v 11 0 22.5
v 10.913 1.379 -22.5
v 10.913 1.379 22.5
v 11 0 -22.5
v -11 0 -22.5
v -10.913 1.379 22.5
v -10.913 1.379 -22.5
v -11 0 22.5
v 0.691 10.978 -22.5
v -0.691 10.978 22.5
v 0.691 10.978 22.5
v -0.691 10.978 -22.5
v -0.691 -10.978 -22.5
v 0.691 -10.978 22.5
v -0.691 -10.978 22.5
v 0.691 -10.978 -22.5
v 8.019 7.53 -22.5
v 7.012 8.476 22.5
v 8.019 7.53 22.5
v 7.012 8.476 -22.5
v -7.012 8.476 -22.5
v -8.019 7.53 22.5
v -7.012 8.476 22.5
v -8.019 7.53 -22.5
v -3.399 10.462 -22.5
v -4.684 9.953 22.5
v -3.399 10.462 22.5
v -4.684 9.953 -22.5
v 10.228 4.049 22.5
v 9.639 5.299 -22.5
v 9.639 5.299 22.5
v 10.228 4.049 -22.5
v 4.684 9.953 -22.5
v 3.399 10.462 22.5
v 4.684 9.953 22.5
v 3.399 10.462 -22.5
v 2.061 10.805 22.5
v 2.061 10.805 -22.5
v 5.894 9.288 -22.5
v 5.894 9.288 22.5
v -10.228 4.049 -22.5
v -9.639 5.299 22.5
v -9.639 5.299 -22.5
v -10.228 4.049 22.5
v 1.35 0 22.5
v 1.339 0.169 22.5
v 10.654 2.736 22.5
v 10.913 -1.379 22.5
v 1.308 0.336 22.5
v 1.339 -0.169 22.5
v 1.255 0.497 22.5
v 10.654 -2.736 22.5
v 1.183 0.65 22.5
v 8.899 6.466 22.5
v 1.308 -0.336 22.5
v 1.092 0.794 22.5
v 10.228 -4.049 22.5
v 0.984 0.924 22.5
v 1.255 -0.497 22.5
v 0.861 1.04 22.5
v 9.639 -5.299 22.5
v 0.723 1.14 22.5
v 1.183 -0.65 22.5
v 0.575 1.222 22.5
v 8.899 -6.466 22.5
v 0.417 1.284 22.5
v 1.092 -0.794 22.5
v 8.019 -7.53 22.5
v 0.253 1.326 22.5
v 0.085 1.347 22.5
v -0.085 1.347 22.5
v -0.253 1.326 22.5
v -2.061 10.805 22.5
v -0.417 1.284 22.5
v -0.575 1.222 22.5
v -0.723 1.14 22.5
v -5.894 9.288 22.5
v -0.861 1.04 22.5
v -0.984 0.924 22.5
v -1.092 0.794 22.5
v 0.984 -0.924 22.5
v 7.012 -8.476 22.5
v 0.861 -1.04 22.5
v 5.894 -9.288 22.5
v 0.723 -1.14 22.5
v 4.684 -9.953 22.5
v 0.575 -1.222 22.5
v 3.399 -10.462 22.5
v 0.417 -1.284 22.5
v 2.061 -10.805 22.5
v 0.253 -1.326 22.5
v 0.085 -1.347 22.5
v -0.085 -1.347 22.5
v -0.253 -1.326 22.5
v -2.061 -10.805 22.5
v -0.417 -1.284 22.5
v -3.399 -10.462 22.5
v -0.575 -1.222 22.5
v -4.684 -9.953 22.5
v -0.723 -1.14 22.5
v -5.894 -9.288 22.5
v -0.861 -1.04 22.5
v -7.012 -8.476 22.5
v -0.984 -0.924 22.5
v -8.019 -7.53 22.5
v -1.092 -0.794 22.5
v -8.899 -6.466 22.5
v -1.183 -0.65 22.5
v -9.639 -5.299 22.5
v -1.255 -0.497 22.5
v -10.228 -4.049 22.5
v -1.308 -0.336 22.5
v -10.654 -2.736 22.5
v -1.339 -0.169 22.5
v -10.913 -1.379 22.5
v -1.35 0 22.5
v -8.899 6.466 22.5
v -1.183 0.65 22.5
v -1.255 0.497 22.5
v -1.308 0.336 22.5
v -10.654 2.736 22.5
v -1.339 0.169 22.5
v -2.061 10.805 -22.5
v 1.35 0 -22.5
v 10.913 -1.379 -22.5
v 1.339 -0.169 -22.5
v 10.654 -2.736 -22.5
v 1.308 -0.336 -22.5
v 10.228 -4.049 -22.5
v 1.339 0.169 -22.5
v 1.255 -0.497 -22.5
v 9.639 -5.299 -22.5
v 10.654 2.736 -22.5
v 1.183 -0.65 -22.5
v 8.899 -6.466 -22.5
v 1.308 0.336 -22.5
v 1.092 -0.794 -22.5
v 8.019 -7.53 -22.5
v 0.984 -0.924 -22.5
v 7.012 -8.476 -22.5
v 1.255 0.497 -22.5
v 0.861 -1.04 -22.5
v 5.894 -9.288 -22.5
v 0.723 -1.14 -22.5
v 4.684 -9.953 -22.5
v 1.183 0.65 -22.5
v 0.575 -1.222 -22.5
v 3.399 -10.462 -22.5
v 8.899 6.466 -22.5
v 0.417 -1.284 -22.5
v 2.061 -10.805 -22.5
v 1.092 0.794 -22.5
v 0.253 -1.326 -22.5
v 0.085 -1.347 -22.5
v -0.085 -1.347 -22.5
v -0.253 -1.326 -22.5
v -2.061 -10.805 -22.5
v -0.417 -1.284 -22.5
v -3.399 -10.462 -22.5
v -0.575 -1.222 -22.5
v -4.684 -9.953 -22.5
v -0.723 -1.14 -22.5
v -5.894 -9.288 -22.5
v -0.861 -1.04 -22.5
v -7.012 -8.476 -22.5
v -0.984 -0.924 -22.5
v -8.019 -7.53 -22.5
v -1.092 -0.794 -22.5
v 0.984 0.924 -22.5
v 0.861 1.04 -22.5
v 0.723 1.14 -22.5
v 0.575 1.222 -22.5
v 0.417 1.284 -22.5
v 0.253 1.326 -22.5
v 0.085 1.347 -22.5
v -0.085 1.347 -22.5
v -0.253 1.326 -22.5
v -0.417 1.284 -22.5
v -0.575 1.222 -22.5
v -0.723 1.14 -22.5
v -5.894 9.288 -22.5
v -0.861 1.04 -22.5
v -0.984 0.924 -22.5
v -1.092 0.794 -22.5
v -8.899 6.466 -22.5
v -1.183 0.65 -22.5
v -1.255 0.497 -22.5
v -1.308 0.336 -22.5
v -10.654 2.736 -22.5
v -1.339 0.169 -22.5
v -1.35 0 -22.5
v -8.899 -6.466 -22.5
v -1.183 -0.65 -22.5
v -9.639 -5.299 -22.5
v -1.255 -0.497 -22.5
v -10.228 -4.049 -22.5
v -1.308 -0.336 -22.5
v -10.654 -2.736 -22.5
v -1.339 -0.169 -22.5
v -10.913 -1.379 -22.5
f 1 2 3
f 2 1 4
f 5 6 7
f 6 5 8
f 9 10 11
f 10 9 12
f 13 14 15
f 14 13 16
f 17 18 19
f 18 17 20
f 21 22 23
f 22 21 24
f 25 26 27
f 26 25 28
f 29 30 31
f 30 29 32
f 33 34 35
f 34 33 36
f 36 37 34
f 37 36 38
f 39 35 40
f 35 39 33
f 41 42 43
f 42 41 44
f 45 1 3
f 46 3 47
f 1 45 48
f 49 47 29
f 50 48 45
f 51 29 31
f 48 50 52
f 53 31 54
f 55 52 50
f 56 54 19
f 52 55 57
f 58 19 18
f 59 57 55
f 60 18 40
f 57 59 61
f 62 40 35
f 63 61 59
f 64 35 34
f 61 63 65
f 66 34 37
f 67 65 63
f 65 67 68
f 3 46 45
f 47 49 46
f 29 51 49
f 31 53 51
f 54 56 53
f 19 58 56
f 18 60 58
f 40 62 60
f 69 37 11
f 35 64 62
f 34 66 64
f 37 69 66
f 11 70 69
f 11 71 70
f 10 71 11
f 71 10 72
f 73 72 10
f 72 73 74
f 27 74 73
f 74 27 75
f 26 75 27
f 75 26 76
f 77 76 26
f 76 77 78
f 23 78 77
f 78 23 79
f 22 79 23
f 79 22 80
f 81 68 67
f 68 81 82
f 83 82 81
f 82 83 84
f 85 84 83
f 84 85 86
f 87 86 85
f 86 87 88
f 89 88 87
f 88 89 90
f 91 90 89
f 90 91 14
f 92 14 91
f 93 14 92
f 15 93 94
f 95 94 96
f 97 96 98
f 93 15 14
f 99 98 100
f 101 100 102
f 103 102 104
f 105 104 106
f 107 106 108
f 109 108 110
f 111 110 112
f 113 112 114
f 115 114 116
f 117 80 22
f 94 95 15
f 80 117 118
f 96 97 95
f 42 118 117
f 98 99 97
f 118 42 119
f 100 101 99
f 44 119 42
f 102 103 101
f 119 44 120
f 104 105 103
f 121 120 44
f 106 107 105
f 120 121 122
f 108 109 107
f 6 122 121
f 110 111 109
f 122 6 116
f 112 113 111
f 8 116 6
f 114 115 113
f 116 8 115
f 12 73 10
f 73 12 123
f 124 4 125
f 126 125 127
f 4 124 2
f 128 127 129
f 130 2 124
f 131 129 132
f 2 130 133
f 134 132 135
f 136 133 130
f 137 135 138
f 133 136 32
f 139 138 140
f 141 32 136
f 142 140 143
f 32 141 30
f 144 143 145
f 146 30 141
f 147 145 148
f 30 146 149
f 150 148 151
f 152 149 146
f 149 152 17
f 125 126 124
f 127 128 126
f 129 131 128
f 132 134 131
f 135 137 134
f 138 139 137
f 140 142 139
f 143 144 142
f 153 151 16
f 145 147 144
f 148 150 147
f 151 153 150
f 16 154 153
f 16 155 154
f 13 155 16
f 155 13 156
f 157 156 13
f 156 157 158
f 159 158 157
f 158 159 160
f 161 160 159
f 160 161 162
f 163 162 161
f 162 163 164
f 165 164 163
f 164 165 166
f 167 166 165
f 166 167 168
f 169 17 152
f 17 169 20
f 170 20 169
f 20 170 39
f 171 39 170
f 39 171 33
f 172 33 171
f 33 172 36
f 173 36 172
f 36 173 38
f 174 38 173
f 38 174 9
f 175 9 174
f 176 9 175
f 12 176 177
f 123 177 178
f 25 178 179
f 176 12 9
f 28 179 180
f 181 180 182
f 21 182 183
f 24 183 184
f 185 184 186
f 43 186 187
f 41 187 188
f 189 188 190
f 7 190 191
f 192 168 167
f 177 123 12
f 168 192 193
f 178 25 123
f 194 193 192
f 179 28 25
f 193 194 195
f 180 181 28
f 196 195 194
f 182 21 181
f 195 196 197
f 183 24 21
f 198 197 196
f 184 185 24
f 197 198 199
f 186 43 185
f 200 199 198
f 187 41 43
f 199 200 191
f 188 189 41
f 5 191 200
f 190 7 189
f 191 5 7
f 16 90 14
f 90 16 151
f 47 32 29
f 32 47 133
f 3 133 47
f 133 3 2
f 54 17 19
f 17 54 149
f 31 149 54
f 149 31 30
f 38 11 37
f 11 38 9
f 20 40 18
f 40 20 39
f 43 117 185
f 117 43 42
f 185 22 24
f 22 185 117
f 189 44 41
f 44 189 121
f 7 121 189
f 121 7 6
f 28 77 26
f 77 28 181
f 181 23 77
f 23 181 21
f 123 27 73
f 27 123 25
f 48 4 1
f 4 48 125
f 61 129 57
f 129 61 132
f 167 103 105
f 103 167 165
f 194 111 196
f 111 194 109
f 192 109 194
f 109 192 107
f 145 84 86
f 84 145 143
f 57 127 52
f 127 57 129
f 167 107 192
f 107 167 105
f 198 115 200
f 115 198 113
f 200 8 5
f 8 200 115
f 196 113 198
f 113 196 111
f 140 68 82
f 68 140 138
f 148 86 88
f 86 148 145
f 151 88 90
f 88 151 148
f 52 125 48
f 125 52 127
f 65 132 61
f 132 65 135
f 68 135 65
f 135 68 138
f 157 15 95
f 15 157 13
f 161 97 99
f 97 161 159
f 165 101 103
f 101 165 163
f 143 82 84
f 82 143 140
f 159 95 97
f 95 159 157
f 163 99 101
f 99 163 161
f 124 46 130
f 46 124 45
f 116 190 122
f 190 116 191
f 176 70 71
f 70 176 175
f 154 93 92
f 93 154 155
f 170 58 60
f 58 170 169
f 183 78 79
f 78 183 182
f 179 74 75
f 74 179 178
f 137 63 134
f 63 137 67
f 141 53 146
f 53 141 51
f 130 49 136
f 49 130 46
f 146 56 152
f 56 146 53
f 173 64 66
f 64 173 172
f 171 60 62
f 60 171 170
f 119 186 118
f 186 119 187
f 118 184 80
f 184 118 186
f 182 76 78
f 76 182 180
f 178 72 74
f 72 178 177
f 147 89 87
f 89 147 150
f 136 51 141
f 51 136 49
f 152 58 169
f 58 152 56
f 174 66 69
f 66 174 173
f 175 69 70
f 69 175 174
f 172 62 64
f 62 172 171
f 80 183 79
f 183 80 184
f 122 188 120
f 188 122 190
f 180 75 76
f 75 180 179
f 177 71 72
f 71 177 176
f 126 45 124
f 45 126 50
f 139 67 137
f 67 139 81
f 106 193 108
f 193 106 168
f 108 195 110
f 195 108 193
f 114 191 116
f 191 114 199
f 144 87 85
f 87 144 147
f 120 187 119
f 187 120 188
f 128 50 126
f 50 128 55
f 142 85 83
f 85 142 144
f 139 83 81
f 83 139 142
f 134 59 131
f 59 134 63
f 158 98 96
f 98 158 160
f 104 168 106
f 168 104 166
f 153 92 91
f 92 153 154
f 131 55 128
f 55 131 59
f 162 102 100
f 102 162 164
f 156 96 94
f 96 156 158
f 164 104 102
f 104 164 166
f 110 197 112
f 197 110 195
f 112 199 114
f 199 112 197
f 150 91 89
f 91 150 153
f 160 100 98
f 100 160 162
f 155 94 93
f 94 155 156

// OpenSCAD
$fn = 50;


difference() {
	union() {
		translate(v = [0, 0, -22.5000000000]) {
			cylinder(h = 45, r = 11.0000000000);
		}
	}
	union() {
		translate(v = [0, 0, -100.0000000000]) {
			cylinder(h = 200, r = 1.3500000000);
		}
	}
}
